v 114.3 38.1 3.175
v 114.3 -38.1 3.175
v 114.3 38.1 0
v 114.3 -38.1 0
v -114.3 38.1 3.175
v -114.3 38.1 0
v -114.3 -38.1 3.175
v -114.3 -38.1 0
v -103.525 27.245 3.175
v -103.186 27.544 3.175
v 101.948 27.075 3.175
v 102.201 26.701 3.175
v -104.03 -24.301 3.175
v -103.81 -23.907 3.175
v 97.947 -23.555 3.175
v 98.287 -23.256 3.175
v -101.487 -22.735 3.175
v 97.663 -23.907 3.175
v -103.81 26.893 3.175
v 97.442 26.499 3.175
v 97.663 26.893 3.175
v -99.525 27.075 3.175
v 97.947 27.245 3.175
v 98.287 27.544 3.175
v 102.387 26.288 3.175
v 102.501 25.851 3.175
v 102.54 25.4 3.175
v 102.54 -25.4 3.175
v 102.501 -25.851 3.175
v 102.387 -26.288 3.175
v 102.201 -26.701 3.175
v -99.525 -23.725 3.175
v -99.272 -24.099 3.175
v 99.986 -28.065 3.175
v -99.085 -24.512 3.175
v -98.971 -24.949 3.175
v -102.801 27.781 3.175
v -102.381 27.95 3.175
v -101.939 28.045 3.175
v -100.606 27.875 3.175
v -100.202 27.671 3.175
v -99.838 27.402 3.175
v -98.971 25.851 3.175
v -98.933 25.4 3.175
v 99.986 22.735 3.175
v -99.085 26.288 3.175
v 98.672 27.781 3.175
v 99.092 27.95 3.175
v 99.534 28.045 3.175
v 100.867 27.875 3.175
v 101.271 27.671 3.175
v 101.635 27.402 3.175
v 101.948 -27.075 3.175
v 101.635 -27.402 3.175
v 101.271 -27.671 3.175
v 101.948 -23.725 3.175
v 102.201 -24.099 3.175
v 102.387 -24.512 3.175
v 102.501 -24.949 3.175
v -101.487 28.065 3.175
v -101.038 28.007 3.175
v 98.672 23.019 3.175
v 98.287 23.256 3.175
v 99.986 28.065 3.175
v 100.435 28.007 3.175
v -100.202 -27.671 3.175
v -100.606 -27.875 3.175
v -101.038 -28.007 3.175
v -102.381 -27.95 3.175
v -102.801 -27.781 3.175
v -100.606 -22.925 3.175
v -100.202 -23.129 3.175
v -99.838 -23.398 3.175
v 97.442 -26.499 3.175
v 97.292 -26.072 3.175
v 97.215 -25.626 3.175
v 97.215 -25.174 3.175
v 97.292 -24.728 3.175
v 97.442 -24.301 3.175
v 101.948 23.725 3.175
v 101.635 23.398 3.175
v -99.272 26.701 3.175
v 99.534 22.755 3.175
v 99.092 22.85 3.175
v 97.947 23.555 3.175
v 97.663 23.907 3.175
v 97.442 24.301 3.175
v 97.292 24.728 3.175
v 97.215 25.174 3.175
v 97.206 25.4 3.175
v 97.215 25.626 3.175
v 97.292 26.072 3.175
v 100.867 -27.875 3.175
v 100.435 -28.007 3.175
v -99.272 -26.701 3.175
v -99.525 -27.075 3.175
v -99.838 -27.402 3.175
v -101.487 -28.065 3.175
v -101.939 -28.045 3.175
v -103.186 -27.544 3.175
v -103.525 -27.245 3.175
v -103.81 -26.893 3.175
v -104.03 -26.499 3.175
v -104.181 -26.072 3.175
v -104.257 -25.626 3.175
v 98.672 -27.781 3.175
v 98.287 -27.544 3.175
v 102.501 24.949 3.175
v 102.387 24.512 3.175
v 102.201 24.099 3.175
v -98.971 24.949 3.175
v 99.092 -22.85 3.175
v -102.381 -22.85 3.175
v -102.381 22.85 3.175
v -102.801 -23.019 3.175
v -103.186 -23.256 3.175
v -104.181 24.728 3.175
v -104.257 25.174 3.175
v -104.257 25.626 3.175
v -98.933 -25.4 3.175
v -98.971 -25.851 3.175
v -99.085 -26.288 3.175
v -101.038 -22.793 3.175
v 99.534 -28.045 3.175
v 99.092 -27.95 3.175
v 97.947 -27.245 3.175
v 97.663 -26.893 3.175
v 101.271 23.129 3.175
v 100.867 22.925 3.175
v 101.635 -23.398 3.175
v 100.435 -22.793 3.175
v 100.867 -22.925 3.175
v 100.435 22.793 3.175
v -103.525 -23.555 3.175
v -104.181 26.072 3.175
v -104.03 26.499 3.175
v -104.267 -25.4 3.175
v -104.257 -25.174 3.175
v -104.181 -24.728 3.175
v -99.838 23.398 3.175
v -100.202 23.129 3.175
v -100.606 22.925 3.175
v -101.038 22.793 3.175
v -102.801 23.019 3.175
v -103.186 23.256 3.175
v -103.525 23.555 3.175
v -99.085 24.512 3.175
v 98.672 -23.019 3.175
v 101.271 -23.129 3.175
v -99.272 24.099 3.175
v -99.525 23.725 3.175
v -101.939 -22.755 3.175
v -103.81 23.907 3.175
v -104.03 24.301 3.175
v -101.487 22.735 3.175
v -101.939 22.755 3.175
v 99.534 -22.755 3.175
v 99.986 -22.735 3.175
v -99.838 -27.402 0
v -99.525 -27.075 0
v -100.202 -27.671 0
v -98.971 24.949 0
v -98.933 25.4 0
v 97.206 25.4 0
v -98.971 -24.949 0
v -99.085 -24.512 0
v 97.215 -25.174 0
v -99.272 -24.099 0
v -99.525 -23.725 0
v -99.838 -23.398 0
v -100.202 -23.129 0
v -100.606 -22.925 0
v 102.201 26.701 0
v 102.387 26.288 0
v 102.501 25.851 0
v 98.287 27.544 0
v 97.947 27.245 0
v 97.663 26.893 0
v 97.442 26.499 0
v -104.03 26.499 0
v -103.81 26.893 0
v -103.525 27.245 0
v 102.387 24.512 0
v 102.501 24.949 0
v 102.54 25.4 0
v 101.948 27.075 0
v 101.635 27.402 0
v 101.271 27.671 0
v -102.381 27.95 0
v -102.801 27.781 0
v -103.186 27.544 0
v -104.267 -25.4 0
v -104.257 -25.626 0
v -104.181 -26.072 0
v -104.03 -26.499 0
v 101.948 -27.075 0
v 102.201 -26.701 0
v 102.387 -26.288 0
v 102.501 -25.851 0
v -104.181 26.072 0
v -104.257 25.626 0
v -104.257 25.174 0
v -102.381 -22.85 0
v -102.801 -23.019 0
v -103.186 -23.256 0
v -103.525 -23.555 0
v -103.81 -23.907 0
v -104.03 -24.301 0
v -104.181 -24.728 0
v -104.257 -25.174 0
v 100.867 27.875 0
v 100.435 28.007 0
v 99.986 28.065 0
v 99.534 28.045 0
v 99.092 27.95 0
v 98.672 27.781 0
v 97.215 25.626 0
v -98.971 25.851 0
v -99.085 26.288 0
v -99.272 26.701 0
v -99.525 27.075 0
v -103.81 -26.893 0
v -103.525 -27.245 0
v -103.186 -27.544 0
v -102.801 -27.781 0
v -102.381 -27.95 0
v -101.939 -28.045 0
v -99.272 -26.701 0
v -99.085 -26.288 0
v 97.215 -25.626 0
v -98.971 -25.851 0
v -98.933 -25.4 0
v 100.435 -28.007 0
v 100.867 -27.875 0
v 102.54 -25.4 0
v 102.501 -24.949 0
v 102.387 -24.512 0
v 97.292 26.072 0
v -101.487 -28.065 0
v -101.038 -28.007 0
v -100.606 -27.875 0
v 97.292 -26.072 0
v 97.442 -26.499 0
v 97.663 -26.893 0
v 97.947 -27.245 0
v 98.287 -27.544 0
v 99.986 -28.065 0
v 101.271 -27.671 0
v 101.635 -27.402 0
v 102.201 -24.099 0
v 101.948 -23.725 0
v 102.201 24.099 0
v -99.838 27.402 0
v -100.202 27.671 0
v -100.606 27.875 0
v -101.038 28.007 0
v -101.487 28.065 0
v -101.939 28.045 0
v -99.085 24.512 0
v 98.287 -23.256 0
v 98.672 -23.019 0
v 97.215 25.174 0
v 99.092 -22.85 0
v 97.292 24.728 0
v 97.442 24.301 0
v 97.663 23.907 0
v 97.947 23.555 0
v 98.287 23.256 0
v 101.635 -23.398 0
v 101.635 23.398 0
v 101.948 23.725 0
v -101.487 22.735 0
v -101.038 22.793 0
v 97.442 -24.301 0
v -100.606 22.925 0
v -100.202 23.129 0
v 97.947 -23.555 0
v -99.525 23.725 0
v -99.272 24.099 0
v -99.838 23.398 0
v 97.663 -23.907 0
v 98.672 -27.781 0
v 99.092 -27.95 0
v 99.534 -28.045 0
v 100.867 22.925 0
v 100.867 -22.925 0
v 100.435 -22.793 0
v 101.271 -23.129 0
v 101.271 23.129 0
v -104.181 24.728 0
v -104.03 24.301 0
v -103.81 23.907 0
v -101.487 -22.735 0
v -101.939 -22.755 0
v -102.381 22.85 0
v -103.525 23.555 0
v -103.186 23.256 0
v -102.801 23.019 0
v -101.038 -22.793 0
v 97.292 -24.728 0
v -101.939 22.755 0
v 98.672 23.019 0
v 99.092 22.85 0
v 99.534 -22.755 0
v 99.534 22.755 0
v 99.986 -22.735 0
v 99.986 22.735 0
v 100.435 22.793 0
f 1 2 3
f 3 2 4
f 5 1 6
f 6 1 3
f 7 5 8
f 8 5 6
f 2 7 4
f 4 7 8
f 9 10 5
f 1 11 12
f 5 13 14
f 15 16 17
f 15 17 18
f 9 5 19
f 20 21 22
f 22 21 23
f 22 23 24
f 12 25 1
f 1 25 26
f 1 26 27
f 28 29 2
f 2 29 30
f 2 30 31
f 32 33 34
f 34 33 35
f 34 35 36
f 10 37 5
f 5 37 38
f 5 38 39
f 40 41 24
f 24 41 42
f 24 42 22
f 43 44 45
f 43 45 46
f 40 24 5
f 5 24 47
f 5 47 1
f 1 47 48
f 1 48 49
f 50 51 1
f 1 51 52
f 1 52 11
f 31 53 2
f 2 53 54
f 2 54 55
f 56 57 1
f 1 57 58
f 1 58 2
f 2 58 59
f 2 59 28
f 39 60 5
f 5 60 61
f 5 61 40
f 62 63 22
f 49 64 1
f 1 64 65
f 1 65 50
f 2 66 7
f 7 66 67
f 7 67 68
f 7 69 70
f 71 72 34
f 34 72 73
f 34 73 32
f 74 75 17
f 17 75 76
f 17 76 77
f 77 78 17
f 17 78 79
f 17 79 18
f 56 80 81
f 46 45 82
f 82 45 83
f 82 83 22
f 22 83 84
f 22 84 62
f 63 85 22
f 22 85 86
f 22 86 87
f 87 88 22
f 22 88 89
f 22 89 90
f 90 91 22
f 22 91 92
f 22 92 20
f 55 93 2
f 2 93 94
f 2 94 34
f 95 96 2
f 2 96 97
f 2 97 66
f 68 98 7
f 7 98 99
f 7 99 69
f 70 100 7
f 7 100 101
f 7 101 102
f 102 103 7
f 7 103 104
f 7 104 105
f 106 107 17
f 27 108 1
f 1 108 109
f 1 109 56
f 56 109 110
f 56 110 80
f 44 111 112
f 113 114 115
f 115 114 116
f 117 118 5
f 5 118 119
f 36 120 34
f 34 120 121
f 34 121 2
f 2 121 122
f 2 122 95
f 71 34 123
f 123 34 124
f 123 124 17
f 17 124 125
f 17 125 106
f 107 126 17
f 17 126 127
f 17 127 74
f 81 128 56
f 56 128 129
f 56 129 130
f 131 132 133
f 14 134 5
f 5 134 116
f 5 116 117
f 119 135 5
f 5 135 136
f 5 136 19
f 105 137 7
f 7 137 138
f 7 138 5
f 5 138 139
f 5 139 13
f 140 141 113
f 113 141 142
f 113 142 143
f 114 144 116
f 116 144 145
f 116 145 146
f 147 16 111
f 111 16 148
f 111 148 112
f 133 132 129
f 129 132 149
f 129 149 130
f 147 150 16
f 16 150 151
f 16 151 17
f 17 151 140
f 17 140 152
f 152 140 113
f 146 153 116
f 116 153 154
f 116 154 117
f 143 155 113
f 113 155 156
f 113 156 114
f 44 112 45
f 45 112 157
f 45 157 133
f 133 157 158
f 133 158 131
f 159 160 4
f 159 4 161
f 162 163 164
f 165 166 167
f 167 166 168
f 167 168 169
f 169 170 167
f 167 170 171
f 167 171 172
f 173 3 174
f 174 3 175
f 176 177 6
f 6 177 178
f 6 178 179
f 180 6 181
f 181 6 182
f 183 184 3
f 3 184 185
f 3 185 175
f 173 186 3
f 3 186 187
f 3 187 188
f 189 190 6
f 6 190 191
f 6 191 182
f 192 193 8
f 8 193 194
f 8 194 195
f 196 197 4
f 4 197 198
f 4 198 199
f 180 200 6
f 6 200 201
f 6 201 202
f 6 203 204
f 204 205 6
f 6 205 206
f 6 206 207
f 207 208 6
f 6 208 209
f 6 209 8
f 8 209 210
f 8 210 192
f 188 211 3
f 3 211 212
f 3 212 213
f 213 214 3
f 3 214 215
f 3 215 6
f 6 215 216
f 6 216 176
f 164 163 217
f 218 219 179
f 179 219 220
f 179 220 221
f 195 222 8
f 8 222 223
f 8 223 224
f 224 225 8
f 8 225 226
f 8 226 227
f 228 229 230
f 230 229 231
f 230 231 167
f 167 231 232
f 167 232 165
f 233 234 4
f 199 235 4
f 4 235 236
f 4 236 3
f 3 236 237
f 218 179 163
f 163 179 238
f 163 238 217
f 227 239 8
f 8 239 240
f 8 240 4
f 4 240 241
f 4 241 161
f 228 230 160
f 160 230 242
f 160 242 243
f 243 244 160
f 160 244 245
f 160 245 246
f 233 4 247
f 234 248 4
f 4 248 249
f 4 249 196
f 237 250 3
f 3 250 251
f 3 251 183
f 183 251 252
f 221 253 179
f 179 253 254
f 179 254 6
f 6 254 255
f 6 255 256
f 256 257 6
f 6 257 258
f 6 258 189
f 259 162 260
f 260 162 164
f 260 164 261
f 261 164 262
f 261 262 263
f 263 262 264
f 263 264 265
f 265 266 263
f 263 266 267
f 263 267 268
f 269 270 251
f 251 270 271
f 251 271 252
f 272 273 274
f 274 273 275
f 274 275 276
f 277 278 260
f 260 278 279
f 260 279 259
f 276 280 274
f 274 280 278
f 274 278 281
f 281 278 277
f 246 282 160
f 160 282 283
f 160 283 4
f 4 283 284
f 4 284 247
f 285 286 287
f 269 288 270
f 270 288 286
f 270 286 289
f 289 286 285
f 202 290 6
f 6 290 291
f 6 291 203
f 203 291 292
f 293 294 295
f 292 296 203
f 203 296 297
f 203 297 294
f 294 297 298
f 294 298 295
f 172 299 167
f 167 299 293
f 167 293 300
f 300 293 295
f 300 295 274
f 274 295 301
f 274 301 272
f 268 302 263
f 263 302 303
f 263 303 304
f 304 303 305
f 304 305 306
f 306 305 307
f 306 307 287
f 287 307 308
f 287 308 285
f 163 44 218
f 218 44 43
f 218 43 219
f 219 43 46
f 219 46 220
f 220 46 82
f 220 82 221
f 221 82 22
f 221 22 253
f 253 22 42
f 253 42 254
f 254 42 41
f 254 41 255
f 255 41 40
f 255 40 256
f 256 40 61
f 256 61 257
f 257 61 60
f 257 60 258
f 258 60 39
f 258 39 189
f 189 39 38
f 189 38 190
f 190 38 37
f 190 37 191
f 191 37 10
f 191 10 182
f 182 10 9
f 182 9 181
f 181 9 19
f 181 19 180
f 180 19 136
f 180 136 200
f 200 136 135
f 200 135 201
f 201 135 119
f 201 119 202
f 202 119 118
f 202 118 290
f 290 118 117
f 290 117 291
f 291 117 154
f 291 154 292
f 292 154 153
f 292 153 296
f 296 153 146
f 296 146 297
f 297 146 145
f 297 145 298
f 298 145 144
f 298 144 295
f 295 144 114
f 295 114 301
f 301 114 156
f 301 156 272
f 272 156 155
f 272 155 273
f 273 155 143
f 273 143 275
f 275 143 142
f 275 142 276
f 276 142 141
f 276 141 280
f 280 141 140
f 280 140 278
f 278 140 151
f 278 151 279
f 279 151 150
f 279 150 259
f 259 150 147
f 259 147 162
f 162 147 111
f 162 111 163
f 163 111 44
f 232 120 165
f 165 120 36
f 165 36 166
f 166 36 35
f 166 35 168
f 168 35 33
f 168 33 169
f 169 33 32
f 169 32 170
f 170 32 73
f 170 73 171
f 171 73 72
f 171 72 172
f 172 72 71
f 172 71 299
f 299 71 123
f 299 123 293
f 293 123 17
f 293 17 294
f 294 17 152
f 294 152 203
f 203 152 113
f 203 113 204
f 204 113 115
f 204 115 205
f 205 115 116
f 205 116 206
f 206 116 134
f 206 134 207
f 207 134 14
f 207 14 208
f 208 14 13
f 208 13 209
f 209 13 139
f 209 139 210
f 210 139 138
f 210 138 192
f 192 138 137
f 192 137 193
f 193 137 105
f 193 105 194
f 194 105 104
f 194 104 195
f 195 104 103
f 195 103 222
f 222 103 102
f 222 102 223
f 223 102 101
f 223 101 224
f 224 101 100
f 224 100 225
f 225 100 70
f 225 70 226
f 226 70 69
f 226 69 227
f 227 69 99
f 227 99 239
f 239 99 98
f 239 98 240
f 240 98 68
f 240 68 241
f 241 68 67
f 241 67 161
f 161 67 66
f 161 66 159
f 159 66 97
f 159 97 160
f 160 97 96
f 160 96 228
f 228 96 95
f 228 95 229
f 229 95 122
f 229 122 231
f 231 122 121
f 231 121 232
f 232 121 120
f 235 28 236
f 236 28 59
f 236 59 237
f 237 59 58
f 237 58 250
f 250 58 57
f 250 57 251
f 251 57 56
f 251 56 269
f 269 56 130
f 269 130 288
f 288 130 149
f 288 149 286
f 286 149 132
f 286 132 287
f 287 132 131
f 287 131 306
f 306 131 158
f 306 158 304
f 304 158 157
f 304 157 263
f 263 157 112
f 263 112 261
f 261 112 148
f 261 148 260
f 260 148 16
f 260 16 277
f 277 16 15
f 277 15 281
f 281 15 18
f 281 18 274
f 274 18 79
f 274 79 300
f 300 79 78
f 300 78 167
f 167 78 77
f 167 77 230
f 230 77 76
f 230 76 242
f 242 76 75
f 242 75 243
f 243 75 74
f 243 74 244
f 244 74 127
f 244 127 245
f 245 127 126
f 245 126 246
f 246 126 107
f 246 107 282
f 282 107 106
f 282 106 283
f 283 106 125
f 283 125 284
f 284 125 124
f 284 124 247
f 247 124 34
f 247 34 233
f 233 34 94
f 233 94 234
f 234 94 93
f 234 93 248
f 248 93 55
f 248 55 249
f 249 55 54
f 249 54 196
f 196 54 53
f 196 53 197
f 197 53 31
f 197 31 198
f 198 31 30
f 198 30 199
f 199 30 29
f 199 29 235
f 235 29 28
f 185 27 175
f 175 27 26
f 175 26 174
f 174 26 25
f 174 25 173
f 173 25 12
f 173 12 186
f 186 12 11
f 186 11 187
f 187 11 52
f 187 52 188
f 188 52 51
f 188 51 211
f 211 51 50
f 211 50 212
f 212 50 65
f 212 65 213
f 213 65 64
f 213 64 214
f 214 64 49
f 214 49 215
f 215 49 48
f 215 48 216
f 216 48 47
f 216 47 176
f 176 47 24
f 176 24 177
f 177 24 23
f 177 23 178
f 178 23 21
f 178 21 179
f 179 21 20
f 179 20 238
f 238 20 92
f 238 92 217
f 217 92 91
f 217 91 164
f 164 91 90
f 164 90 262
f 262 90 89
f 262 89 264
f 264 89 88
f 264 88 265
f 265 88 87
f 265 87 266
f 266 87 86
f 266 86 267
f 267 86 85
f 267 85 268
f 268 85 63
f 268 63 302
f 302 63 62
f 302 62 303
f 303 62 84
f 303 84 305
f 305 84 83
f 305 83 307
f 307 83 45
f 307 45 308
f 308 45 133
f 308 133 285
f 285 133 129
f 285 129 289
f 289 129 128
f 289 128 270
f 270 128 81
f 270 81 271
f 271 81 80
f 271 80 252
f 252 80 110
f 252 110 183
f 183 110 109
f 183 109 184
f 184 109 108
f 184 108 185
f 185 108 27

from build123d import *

# Parameters (mm, degrees)
SKETCH1_W           = 228.6
SKETCH1_H           = 76.2
BOSS_EXTRUDE1_DEPTH = 3.175
SKETCH3_R           = 2.667
CUT_EXTRUDE2_DEPTH  = 3.175


with BuildPart() as part:
    # Sketch1 → Boss-Extrude1 (new body)
    with BuildSketch(Plane.XY):
        Rectangle(SKETCH1_W, SKETCH1_H)
    extrude(amount=BOSS_EXTRUDE1_DEPTH)

    # Sketch3 → Cut-Extrude2 (cut)
    with BuildSketch(Plane.XY.offset(3.175)):
        with Locations((-101.6, 25.4)):
            Circle(SKETCH3_R)
        with Locations(Location((-101.6, -25.4, 0), (0, 0, 180))):
            Circle(SKETCH3_R)
        with Locations((99.872641584, -25.4)):
            Circle(SKETCH3_R)
        with Locations(Location((99.872641584, 25.4, 0), (0, 0, 180))):
            Circle(SKETCH3_R)
    extrude(amount=-CUT_EXTRUDE2_DEPTH, mode=Mode.SUBTRACT)


solid = part.part
